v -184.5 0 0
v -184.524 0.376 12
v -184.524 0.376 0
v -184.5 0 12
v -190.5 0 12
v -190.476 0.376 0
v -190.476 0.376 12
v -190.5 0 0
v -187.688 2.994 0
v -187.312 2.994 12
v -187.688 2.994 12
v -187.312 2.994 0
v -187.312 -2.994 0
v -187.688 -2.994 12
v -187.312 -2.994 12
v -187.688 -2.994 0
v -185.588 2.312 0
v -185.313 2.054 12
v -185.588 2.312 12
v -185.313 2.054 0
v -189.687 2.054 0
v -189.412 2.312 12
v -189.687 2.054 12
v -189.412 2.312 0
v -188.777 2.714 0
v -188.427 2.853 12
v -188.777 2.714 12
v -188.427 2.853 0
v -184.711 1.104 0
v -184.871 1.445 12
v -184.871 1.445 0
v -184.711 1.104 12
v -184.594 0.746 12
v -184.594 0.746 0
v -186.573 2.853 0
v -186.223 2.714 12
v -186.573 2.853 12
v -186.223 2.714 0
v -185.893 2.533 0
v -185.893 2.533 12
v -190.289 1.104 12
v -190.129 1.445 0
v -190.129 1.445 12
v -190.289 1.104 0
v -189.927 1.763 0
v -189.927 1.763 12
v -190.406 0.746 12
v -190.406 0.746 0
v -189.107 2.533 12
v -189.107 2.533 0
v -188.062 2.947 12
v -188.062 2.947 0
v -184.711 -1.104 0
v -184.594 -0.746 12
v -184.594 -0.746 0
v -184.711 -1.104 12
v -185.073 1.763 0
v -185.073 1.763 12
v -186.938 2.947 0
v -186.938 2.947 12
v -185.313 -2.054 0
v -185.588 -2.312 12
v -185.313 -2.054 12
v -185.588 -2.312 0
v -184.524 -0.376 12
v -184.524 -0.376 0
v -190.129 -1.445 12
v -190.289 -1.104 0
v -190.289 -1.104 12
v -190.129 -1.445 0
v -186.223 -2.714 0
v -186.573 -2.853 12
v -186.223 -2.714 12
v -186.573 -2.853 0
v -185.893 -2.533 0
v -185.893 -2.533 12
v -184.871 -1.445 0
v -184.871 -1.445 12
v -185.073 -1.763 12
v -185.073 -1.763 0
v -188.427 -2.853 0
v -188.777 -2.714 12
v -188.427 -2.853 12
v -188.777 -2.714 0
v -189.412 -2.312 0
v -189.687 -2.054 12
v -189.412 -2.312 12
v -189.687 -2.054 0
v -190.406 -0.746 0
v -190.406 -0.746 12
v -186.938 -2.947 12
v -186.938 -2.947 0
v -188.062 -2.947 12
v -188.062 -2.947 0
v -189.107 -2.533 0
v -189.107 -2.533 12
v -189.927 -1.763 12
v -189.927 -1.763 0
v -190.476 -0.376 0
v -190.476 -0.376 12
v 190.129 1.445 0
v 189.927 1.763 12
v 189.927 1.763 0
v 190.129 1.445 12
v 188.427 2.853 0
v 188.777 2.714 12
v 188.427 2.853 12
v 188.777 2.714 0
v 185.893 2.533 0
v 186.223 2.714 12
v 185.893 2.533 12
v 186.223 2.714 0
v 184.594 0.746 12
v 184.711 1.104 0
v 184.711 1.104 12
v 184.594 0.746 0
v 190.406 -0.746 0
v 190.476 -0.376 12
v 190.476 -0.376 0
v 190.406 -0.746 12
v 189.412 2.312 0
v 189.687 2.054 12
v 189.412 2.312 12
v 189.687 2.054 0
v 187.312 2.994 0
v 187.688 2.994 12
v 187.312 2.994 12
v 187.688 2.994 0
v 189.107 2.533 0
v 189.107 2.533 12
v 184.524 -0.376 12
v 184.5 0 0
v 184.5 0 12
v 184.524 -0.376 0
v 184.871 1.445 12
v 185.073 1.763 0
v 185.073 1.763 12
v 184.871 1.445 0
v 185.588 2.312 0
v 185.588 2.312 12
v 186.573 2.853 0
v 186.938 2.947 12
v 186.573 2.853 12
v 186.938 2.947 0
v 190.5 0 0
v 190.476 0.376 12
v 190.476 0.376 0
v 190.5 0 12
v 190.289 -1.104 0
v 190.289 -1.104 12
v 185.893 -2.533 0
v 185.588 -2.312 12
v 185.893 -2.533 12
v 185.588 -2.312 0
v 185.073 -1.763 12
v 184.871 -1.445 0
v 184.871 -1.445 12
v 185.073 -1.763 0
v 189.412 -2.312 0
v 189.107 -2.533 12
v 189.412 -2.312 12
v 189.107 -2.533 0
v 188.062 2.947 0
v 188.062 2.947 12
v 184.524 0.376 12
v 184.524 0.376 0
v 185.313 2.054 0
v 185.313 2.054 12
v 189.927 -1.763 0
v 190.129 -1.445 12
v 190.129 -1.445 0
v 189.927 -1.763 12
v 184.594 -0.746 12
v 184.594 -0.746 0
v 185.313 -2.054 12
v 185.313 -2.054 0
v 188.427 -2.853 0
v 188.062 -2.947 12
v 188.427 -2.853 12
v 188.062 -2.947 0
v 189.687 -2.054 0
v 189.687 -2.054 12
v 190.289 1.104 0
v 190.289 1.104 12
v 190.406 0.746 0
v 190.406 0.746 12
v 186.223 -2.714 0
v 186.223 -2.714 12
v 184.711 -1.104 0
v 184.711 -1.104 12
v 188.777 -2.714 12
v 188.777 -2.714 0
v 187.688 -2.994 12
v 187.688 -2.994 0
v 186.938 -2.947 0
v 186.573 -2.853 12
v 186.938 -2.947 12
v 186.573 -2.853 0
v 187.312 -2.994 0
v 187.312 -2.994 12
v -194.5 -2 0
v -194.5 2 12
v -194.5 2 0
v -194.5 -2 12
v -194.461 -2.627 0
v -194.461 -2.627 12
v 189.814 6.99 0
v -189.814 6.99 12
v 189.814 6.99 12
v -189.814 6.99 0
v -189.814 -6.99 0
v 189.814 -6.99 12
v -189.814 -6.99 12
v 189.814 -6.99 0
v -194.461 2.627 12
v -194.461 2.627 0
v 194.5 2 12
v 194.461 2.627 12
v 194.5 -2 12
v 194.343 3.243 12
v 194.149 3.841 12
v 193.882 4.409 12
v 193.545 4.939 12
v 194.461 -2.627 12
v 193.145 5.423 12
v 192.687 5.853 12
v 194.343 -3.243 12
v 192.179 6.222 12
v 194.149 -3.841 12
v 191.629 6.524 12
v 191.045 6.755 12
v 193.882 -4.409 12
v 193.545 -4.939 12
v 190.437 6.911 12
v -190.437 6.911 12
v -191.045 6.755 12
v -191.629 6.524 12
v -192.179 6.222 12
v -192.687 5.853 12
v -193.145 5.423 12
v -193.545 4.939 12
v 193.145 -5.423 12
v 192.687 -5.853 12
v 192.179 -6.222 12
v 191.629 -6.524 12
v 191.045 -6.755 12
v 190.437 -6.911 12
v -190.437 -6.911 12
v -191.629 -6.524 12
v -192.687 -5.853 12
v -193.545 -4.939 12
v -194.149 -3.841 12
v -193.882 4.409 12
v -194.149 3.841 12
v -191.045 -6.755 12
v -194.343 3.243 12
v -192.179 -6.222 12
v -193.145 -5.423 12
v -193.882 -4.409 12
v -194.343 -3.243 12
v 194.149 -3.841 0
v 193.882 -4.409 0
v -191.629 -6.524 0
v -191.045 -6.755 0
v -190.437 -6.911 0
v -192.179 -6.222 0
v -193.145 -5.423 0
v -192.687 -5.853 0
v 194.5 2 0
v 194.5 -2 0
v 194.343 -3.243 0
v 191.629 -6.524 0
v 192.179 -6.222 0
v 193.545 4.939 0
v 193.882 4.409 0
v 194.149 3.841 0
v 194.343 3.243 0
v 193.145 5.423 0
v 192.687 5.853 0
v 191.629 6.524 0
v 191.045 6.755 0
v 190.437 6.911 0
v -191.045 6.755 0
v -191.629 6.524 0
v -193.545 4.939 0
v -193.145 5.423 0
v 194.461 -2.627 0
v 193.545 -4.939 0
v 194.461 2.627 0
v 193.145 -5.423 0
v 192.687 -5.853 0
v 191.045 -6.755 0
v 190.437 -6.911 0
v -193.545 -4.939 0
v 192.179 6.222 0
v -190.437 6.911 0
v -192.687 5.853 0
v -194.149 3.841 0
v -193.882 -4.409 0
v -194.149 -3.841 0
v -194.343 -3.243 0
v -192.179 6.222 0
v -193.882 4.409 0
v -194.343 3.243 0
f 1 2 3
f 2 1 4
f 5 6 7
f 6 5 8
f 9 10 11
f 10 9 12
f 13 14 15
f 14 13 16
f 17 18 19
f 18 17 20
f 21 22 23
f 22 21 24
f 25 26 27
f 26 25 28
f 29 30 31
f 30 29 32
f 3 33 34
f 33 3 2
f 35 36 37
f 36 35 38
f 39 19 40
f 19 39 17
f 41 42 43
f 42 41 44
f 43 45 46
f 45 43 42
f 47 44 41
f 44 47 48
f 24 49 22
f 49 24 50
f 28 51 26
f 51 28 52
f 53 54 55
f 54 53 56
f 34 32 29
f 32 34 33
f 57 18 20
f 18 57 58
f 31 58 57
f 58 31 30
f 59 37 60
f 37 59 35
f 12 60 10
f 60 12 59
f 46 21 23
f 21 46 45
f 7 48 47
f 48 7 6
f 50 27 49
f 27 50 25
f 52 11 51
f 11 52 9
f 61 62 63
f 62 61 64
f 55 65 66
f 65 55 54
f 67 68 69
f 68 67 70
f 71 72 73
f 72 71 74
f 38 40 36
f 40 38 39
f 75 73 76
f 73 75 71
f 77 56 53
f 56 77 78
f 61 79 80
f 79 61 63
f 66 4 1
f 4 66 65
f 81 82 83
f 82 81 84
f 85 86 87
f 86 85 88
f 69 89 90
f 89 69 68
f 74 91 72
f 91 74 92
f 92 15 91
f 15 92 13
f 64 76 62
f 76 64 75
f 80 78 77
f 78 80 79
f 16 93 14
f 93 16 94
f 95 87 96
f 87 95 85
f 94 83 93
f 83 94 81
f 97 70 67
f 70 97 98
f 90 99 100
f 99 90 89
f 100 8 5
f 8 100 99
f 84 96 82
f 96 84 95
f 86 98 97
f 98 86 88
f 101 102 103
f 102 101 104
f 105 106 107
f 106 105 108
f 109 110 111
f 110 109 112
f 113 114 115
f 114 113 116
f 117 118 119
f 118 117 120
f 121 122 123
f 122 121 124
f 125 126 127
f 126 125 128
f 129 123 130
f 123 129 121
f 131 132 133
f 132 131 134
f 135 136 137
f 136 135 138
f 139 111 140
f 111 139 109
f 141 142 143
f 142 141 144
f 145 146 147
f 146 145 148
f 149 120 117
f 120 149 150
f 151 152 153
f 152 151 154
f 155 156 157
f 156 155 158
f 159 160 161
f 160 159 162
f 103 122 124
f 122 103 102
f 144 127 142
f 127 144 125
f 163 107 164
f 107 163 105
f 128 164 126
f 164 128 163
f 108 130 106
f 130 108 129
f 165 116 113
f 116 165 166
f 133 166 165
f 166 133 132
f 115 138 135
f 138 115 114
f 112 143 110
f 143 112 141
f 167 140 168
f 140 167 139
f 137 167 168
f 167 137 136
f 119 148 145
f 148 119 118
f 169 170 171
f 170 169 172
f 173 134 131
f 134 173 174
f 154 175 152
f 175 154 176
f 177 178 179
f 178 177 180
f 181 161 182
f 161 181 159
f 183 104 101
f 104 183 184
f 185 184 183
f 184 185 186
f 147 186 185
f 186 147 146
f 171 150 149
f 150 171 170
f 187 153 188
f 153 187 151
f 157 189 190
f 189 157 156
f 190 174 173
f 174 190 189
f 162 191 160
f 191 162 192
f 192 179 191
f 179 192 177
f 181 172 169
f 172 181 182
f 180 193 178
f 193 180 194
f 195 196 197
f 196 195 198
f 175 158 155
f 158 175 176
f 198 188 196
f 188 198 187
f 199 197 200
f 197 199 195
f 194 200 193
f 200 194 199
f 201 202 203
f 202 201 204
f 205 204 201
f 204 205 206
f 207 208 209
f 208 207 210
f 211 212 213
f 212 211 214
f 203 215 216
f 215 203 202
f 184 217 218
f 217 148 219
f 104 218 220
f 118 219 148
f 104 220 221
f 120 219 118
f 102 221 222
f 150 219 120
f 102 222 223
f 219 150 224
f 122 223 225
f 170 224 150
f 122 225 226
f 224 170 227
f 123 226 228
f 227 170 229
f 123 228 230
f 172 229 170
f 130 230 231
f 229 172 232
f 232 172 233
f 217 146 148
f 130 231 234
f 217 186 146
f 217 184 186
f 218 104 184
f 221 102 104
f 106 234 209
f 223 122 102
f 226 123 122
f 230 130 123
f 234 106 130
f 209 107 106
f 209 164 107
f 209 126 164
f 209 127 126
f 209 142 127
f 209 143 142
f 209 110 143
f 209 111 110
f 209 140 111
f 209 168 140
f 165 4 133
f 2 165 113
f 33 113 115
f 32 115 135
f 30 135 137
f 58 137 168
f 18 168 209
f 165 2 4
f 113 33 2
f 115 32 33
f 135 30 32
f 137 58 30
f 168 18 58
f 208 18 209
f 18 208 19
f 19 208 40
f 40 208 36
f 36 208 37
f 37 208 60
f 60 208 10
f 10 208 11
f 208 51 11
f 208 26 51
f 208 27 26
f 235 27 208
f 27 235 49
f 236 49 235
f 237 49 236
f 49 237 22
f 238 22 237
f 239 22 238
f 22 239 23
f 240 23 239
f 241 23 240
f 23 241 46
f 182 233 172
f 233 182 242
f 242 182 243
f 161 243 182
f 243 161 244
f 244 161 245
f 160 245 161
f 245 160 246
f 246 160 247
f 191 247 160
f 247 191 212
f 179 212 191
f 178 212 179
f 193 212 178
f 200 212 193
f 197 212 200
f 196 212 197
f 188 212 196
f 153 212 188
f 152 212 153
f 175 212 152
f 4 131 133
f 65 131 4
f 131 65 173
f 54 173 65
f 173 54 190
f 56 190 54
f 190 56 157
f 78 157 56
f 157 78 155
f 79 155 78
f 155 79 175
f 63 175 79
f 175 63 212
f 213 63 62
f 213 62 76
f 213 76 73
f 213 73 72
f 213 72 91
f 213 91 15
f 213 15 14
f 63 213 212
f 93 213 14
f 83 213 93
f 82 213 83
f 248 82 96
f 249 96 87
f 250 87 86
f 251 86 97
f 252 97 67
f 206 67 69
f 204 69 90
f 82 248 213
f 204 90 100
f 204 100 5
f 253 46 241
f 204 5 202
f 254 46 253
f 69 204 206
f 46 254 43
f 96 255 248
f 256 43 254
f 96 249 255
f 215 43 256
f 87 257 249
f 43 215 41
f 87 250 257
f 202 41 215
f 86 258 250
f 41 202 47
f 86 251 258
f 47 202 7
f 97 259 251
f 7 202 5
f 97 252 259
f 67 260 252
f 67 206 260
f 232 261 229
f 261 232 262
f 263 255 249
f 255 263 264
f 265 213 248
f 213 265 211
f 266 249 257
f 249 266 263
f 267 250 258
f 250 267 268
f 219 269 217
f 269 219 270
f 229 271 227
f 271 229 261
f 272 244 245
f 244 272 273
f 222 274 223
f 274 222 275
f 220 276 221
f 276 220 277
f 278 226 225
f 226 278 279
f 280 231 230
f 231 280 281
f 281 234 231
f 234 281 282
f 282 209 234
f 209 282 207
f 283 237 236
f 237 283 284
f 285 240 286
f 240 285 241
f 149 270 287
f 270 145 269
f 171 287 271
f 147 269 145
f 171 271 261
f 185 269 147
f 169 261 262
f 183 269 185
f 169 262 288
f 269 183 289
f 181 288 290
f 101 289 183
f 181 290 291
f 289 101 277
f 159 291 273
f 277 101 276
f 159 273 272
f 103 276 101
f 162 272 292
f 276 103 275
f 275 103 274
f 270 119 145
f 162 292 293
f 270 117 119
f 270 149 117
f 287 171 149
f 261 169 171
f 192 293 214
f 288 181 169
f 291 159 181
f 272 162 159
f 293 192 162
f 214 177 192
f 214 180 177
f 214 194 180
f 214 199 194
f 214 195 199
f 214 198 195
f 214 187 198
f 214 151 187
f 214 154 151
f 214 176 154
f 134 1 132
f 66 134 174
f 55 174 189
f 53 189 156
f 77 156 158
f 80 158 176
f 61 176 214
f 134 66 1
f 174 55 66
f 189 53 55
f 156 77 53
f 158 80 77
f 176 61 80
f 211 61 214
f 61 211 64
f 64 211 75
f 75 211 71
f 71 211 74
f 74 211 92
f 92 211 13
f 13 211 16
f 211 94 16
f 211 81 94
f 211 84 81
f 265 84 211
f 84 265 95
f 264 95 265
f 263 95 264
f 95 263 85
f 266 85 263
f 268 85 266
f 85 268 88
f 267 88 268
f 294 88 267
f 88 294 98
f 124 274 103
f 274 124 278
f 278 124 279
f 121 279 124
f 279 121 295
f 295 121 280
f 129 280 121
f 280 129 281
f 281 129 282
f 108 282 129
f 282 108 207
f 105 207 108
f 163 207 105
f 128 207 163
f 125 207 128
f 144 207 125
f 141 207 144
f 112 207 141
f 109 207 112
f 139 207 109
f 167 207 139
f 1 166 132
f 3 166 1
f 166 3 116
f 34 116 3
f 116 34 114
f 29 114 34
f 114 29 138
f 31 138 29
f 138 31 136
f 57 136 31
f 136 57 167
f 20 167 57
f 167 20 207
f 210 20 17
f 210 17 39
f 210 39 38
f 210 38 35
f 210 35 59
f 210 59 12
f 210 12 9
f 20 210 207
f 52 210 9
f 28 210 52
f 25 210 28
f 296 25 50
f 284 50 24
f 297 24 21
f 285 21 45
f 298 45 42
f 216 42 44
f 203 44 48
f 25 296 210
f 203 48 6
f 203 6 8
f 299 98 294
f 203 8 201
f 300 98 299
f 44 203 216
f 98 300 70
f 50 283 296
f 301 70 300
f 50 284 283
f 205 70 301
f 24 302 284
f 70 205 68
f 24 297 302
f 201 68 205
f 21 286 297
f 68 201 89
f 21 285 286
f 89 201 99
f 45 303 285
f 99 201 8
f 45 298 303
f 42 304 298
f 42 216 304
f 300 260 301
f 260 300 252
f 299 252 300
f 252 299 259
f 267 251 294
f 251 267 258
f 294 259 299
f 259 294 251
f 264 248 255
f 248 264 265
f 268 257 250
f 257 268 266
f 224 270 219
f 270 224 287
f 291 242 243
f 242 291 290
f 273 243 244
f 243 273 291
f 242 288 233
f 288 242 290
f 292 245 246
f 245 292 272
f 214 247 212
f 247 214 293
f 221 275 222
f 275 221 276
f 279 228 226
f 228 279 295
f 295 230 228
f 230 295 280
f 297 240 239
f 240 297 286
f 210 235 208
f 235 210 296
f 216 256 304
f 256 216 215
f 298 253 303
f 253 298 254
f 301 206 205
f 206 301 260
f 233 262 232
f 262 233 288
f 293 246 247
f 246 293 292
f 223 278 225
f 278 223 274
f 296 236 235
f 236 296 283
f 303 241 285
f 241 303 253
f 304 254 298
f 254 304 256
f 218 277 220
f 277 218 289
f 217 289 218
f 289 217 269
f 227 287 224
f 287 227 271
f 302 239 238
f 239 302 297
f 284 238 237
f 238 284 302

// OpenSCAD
$fn = 50;


difference() {
	union() {
		hull() {
			translate(v = [-189.5000000000, 2.0000000000, 0]) {
				cylinder(h = 12, r = 5);
			}
			translate(v = [189.5000000000, 2.0000000000, 0]) {
				cylinder(h = 12, r = 5);
			}
			translate(v = [-189.5000000000, -2.0000000000, 0]) {
				cylinder(h = 12, r = 5);
			}
			translate(v = [189.5000000000, -2.0000000000, 0]) {
				cylinder(h = 12, r = 5);
			}
		}
	}
	union() {
		translate(v = [-187.5000000000, 0.0000000000, -100.0000000000]) {
			cylinder(h = 200, r = 3.0000000000);
		}
		translate(v = [-187.5000000000, 0.0000000000, -100.0000000000]) {
			cylinder(h = 200, r = 3.0000000000);
		}
		translate(v = [187.5000000000, 0.0000000000, -100.0000000000]) {
			cylinder(h = 200, r = 3.0000000000);
		}
		translate(v = [187.5000000000, 0.0000000000, -100.0000000000]) {
			cylinder(h = 200, r = 3.0000000000);
		}
	}
}
